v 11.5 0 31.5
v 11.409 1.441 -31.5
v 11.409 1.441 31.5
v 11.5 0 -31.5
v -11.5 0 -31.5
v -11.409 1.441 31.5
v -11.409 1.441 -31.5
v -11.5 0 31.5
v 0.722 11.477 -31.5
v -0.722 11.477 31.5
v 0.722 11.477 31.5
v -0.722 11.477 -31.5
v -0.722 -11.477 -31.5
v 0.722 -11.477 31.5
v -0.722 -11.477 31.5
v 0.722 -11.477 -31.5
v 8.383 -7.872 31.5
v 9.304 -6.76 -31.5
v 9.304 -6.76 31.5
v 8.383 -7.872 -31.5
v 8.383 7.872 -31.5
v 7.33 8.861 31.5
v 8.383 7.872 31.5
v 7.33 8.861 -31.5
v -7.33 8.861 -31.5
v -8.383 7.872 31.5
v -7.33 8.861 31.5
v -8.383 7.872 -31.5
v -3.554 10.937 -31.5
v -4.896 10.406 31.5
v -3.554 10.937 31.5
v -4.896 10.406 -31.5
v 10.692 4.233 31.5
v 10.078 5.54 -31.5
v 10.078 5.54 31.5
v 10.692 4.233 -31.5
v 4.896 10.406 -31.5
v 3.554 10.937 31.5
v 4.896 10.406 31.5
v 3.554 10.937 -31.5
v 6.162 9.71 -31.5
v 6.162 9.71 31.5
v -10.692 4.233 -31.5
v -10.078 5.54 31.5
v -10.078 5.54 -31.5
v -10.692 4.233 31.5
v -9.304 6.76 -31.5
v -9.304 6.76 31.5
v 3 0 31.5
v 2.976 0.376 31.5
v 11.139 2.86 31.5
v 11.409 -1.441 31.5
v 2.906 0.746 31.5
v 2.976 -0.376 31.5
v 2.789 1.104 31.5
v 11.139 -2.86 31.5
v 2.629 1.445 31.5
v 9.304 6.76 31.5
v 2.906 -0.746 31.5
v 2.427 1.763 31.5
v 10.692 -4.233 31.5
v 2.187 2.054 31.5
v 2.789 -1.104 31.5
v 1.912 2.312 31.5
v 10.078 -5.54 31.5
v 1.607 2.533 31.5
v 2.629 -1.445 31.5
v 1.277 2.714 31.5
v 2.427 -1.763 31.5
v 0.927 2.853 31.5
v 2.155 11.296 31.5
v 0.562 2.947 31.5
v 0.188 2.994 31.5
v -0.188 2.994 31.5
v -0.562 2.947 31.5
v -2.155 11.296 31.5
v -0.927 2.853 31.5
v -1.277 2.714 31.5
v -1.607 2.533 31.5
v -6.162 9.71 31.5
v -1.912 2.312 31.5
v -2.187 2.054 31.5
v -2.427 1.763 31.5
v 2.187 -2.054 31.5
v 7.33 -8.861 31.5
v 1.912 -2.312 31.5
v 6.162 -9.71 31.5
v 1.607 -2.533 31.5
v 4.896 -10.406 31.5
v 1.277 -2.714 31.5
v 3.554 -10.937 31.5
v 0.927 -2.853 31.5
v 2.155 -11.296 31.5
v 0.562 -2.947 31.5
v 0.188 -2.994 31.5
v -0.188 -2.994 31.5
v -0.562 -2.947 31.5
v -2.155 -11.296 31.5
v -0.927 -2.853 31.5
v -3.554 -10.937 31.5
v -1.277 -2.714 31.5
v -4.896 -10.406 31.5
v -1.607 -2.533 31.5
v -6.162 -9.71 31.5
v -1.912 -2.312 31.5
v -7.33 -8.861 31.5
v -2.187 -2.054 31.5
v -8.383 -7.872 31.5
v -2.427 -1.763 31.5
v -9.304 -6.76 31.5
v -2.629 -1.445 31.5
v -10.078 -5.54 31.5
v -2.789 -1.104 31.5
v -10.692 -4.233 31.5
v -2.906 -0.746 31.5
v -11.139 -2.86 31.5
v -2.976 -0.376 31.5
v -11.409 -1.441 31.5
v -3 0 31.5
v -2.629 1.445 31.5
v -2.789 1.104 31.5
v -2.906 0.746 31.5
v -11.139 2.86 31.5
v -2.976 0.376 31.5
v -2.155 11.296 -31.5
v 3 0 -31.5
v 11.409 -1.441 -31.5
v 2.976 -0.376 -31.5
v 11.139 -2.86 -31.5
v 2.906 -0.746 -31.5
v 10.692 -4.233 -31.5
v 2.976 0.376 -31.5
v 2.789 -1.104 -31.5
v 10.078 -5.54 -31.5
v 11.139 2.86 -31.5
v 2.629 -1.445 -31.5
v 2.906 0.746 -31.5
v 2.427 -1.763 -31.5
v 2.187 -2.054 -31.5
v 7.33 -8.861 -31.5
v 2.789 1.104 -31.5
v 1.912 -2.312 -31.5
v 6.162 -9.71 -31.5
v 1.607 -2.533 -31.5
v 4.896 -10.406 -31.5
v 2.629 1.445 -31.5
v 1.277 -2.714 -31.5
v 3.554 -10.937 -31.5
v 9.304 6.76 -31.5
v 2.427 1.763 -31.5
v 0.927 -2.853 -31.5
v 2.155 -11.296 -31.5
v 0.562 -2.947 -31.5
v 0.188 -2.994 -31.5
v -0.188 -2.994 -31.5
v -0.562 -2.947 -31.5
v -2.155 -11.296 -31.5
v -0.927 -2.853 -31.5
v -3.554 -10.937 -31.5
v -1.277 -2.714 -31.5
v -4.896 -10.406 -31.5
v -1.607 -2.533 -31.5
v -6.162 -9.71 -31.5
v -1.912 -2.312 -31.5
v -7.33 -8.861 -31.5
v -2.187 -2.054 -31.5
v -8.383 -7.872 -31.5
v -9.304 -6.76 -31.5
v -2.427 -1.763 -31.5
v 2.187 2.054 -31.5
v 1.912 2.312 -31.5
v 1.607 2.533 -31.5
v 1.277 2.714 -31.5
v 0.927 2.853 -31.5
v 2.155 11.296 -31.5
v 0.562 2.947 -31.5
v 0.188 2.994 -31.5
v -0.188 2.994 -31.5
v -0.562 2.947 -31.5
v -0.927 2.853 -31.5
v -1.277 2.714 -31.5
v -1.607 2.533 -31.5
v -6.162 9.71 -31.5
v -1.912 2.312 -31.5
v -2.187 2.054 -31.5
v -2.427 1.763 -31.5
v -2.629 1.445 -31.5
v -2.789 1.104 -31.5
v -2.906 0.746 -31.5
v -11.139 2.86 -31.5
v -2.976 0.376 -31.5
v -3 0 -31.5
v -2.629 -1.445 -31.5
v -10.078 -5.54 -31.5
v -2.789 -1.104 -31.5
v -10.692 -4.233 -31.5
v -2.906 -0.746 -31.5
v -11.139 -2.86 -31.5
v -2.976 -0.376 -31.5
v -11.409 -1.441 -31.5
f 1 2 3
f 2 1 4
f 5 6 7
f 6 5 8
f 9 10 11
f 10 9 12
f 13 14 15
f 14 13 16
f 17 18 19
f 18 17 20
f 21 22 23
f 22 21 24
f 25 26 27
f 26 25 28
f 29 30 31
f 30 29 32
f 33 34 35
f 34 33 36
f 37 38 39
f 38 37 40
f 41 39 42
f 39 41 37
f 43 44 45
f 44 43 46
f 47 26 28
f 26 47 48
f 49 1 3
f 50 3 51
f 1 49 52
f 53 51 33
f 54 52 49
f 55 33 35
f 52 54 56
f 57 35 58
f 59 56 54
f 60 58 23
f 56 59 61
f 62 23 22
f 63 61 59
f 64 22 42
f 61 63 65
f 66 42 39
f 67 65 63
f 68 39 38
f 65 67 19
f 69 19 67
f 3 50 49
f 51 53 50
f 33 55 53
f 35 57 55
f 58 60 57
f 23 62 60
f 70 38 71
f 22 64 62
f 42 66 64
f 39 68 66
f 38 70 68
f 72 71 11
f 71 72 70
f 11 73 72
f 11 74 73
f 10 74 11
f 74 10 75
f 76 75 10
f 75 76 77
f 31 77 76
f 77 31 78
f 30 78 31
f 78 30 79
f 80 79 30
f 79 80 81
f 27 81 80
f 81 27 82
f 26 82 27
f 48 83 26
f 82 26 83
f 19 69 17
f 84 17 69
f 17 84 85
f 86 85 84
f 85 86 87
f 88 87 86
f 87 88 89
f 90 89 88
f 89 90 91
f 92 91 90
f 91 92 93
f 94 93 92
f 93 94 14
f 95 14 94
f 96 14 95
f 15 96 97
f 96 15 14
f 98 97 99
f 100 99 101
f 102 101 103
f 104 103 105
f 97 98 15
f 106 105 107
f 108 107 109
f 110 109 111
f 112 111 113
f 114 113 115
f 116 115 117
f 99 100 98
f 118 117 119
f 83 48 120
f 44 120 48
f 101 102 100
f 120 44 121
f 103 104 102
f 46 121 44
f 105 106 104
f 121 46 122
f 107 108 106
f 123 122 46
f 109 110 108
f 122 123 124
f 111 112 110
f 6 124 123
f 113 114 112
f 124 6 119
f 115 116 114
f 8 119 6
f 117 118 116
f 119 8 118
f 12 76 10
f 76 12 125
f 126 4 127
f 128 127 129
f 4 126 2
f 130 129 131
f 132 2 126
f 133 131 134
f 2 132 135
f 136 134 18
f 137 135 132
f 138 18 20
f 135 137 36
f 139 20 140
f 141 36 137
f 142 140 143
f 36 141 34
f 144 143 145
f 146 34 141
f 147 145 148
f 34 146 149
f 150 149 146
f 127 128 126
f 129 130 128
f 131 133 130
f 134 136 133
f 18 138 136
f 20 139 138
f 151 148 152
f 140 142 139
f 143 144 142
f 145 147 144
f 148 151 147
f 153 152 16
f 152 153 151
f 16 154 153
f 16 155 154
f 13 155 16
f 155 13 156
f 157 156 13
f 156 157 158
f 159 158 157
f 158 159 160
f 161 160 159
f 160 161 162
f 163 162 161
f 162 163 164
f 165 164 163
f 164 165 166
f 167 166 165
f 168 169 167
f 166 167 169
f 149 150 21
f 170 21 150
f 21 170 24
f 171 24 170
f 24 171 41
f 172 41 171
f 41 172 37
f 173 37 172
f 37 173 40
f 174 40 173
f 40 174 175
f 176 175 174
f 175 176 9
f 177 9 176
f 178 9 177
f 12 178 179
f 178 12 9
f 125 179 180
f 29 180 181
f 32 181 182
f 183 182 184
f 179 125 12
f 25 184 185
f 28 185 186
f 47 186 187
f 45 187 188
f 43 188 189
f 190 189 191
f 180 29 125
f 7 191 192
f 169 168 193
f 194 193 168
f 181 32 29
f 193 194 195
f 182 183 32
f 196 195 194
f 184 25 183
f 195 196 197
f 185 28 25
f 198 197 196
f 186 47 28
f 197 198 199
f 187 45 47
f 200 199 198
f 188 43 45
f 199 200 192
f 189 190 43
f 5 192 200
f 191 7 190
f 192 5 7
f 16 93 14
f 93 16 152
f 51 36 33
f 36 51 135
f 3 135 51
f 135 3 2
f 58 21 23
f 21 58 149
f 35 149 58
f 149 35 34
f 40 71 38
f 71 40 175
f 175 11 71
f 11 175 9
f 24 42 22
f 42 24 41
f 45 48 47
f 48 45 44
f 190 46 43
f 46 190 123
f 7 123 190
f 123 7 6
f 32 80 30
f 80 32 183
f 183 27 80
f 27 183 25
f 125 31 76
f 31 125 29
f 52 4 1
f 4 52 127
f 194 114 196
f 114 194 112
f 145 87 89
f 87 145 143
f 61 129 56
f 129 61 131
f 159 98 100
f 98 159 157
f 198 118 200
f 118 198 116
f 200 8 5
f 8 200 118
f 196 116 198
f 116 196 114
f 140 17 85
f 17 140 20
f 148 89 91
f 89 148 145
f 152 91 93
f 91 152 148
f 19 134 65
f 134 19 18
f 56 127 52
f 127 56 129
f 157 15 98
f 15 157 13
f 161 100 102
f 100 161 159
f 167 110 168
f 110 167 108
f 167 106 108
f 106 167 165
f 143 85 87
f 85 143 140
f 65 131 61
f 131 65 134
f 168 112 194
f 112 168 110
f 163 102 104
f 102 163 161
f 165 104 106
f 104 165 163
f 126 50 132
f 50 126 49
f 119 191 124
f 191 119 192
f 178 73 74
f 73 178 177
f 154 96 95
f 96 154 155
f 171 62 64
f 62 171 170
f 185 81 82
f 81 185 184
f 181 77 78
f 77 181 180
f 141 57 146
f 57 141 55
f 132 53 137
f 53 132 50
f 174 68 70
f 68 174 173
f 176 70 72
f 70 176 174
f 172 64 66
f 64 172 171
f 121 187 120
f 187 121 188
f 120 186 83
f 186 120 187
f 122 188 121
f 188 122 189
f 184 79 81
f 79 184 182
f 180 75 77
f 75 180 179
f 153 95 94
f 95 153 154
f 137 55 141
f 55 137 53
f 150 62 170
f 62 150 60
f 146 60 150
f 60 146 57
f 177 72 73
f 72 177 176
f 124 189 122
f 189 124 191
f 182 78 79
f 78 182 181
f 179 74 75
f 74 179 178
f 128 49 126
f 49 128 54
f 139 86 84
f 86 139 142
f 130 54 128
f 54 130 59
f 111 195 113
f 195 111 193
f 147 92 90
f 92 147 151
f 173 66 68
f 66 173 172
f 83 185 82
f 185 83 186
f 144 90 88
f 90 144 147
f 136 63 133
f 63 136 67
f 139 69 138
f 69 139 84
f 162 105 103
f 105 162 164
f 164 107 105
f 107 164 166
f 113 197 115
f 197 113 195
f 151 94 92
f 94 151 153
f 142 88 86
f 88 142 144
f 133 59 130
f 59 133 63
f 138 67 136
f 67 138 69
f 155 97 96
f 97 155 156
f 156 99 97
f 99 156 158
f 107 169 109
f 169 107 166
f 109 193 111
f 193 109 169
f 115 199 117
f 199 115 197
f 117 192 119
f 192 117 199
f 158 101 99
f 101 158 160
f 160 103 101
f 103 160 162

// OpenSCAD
$fn = 50;


difference() {
	union() {
		translate(v = [0, 0, -31.5000000000]) {
			cylinder(h = 63, r = 11.5000000000);
		}
	}
	union() {
		translate(v = [0, 0, -100.0000000000]) {
			cylinder(h = 200, r = 3);
		}
	}
}
